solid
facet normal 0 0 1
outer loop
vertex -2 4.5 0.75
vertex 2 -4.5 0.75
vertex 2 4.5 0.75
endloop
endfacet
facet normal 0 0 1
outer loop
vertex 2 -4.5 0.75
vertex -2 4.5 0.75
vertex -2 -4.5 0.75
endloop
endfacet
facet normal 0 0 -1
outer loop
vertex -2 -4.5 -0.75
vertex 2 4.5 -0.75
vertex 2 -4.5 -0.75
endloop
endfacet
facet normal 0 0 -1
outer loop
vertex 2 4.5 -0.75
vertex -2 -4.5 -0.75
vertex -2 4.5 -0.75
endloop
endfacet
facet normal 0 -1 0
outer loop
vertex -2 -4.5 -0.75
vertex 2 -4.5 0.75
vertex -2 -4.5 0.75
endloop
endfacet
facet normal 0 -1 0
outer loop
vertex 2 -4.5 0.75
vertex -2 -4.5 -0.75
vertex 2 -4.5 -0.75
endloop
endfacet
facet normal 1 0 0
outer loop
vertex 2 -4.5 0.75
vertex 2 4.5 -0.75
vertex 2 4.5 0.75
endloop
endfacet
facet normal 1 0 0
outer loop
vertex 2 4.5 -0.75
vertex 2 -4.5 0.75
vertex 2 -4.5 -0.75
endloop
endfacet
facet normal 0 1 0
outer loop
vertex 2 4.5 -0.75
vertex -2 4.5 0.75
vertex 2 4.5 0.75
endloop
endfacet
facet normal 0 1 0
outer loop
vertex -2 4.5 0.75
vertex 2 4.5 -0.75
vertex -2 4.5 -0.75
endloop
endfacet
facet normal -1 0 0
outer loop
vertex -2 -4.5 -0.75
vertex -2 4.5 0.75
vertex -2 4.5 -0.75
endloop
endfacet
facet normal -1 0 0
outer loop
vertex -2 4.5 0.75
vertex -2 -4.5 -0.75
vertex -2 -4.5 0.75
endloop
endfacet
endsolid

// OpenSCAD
SIZE_X = 4 ;
SIZE_Y = 9 ;
SIZE_Z = 1.5 ;

cube([SIZE_X,SIZE_Y,SIZE_Z], true) ;
 
